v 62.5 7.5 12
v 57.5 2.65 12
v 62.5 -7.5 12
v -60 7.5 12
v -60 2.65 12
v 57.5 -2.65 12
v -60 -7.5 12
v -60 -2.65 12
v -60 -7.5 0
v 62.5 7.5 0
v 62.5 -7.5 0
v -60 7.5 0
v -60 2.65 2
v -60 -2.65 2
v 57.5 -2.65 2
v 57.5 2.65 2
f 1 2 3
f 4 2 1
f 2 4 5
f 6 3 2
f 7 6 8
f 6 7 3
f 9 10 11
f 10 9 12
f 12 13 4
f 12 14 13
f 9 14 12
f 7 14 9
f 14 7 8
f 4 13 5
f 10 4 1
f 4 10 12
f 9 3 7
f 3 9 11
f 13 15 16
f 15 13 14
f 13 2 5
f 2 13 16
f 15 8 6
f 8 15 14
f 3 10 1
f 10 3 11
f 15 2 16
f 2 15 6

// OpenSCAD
module normcube(c) {
    // normalize a cube to be positioned around the origin, like a cylinder.
    translate([-c.x/2,-c.y/2,0]) cube(c);
}

module tread_screwing_jig() {
    difference() {
        normcube([120,15,12]);
        translate([0,0,2]) normcube([120,5.3,10]);
    }
    translate([60,0,0]) normcube([5,15,12]);
}

tread_screwing_jig();
